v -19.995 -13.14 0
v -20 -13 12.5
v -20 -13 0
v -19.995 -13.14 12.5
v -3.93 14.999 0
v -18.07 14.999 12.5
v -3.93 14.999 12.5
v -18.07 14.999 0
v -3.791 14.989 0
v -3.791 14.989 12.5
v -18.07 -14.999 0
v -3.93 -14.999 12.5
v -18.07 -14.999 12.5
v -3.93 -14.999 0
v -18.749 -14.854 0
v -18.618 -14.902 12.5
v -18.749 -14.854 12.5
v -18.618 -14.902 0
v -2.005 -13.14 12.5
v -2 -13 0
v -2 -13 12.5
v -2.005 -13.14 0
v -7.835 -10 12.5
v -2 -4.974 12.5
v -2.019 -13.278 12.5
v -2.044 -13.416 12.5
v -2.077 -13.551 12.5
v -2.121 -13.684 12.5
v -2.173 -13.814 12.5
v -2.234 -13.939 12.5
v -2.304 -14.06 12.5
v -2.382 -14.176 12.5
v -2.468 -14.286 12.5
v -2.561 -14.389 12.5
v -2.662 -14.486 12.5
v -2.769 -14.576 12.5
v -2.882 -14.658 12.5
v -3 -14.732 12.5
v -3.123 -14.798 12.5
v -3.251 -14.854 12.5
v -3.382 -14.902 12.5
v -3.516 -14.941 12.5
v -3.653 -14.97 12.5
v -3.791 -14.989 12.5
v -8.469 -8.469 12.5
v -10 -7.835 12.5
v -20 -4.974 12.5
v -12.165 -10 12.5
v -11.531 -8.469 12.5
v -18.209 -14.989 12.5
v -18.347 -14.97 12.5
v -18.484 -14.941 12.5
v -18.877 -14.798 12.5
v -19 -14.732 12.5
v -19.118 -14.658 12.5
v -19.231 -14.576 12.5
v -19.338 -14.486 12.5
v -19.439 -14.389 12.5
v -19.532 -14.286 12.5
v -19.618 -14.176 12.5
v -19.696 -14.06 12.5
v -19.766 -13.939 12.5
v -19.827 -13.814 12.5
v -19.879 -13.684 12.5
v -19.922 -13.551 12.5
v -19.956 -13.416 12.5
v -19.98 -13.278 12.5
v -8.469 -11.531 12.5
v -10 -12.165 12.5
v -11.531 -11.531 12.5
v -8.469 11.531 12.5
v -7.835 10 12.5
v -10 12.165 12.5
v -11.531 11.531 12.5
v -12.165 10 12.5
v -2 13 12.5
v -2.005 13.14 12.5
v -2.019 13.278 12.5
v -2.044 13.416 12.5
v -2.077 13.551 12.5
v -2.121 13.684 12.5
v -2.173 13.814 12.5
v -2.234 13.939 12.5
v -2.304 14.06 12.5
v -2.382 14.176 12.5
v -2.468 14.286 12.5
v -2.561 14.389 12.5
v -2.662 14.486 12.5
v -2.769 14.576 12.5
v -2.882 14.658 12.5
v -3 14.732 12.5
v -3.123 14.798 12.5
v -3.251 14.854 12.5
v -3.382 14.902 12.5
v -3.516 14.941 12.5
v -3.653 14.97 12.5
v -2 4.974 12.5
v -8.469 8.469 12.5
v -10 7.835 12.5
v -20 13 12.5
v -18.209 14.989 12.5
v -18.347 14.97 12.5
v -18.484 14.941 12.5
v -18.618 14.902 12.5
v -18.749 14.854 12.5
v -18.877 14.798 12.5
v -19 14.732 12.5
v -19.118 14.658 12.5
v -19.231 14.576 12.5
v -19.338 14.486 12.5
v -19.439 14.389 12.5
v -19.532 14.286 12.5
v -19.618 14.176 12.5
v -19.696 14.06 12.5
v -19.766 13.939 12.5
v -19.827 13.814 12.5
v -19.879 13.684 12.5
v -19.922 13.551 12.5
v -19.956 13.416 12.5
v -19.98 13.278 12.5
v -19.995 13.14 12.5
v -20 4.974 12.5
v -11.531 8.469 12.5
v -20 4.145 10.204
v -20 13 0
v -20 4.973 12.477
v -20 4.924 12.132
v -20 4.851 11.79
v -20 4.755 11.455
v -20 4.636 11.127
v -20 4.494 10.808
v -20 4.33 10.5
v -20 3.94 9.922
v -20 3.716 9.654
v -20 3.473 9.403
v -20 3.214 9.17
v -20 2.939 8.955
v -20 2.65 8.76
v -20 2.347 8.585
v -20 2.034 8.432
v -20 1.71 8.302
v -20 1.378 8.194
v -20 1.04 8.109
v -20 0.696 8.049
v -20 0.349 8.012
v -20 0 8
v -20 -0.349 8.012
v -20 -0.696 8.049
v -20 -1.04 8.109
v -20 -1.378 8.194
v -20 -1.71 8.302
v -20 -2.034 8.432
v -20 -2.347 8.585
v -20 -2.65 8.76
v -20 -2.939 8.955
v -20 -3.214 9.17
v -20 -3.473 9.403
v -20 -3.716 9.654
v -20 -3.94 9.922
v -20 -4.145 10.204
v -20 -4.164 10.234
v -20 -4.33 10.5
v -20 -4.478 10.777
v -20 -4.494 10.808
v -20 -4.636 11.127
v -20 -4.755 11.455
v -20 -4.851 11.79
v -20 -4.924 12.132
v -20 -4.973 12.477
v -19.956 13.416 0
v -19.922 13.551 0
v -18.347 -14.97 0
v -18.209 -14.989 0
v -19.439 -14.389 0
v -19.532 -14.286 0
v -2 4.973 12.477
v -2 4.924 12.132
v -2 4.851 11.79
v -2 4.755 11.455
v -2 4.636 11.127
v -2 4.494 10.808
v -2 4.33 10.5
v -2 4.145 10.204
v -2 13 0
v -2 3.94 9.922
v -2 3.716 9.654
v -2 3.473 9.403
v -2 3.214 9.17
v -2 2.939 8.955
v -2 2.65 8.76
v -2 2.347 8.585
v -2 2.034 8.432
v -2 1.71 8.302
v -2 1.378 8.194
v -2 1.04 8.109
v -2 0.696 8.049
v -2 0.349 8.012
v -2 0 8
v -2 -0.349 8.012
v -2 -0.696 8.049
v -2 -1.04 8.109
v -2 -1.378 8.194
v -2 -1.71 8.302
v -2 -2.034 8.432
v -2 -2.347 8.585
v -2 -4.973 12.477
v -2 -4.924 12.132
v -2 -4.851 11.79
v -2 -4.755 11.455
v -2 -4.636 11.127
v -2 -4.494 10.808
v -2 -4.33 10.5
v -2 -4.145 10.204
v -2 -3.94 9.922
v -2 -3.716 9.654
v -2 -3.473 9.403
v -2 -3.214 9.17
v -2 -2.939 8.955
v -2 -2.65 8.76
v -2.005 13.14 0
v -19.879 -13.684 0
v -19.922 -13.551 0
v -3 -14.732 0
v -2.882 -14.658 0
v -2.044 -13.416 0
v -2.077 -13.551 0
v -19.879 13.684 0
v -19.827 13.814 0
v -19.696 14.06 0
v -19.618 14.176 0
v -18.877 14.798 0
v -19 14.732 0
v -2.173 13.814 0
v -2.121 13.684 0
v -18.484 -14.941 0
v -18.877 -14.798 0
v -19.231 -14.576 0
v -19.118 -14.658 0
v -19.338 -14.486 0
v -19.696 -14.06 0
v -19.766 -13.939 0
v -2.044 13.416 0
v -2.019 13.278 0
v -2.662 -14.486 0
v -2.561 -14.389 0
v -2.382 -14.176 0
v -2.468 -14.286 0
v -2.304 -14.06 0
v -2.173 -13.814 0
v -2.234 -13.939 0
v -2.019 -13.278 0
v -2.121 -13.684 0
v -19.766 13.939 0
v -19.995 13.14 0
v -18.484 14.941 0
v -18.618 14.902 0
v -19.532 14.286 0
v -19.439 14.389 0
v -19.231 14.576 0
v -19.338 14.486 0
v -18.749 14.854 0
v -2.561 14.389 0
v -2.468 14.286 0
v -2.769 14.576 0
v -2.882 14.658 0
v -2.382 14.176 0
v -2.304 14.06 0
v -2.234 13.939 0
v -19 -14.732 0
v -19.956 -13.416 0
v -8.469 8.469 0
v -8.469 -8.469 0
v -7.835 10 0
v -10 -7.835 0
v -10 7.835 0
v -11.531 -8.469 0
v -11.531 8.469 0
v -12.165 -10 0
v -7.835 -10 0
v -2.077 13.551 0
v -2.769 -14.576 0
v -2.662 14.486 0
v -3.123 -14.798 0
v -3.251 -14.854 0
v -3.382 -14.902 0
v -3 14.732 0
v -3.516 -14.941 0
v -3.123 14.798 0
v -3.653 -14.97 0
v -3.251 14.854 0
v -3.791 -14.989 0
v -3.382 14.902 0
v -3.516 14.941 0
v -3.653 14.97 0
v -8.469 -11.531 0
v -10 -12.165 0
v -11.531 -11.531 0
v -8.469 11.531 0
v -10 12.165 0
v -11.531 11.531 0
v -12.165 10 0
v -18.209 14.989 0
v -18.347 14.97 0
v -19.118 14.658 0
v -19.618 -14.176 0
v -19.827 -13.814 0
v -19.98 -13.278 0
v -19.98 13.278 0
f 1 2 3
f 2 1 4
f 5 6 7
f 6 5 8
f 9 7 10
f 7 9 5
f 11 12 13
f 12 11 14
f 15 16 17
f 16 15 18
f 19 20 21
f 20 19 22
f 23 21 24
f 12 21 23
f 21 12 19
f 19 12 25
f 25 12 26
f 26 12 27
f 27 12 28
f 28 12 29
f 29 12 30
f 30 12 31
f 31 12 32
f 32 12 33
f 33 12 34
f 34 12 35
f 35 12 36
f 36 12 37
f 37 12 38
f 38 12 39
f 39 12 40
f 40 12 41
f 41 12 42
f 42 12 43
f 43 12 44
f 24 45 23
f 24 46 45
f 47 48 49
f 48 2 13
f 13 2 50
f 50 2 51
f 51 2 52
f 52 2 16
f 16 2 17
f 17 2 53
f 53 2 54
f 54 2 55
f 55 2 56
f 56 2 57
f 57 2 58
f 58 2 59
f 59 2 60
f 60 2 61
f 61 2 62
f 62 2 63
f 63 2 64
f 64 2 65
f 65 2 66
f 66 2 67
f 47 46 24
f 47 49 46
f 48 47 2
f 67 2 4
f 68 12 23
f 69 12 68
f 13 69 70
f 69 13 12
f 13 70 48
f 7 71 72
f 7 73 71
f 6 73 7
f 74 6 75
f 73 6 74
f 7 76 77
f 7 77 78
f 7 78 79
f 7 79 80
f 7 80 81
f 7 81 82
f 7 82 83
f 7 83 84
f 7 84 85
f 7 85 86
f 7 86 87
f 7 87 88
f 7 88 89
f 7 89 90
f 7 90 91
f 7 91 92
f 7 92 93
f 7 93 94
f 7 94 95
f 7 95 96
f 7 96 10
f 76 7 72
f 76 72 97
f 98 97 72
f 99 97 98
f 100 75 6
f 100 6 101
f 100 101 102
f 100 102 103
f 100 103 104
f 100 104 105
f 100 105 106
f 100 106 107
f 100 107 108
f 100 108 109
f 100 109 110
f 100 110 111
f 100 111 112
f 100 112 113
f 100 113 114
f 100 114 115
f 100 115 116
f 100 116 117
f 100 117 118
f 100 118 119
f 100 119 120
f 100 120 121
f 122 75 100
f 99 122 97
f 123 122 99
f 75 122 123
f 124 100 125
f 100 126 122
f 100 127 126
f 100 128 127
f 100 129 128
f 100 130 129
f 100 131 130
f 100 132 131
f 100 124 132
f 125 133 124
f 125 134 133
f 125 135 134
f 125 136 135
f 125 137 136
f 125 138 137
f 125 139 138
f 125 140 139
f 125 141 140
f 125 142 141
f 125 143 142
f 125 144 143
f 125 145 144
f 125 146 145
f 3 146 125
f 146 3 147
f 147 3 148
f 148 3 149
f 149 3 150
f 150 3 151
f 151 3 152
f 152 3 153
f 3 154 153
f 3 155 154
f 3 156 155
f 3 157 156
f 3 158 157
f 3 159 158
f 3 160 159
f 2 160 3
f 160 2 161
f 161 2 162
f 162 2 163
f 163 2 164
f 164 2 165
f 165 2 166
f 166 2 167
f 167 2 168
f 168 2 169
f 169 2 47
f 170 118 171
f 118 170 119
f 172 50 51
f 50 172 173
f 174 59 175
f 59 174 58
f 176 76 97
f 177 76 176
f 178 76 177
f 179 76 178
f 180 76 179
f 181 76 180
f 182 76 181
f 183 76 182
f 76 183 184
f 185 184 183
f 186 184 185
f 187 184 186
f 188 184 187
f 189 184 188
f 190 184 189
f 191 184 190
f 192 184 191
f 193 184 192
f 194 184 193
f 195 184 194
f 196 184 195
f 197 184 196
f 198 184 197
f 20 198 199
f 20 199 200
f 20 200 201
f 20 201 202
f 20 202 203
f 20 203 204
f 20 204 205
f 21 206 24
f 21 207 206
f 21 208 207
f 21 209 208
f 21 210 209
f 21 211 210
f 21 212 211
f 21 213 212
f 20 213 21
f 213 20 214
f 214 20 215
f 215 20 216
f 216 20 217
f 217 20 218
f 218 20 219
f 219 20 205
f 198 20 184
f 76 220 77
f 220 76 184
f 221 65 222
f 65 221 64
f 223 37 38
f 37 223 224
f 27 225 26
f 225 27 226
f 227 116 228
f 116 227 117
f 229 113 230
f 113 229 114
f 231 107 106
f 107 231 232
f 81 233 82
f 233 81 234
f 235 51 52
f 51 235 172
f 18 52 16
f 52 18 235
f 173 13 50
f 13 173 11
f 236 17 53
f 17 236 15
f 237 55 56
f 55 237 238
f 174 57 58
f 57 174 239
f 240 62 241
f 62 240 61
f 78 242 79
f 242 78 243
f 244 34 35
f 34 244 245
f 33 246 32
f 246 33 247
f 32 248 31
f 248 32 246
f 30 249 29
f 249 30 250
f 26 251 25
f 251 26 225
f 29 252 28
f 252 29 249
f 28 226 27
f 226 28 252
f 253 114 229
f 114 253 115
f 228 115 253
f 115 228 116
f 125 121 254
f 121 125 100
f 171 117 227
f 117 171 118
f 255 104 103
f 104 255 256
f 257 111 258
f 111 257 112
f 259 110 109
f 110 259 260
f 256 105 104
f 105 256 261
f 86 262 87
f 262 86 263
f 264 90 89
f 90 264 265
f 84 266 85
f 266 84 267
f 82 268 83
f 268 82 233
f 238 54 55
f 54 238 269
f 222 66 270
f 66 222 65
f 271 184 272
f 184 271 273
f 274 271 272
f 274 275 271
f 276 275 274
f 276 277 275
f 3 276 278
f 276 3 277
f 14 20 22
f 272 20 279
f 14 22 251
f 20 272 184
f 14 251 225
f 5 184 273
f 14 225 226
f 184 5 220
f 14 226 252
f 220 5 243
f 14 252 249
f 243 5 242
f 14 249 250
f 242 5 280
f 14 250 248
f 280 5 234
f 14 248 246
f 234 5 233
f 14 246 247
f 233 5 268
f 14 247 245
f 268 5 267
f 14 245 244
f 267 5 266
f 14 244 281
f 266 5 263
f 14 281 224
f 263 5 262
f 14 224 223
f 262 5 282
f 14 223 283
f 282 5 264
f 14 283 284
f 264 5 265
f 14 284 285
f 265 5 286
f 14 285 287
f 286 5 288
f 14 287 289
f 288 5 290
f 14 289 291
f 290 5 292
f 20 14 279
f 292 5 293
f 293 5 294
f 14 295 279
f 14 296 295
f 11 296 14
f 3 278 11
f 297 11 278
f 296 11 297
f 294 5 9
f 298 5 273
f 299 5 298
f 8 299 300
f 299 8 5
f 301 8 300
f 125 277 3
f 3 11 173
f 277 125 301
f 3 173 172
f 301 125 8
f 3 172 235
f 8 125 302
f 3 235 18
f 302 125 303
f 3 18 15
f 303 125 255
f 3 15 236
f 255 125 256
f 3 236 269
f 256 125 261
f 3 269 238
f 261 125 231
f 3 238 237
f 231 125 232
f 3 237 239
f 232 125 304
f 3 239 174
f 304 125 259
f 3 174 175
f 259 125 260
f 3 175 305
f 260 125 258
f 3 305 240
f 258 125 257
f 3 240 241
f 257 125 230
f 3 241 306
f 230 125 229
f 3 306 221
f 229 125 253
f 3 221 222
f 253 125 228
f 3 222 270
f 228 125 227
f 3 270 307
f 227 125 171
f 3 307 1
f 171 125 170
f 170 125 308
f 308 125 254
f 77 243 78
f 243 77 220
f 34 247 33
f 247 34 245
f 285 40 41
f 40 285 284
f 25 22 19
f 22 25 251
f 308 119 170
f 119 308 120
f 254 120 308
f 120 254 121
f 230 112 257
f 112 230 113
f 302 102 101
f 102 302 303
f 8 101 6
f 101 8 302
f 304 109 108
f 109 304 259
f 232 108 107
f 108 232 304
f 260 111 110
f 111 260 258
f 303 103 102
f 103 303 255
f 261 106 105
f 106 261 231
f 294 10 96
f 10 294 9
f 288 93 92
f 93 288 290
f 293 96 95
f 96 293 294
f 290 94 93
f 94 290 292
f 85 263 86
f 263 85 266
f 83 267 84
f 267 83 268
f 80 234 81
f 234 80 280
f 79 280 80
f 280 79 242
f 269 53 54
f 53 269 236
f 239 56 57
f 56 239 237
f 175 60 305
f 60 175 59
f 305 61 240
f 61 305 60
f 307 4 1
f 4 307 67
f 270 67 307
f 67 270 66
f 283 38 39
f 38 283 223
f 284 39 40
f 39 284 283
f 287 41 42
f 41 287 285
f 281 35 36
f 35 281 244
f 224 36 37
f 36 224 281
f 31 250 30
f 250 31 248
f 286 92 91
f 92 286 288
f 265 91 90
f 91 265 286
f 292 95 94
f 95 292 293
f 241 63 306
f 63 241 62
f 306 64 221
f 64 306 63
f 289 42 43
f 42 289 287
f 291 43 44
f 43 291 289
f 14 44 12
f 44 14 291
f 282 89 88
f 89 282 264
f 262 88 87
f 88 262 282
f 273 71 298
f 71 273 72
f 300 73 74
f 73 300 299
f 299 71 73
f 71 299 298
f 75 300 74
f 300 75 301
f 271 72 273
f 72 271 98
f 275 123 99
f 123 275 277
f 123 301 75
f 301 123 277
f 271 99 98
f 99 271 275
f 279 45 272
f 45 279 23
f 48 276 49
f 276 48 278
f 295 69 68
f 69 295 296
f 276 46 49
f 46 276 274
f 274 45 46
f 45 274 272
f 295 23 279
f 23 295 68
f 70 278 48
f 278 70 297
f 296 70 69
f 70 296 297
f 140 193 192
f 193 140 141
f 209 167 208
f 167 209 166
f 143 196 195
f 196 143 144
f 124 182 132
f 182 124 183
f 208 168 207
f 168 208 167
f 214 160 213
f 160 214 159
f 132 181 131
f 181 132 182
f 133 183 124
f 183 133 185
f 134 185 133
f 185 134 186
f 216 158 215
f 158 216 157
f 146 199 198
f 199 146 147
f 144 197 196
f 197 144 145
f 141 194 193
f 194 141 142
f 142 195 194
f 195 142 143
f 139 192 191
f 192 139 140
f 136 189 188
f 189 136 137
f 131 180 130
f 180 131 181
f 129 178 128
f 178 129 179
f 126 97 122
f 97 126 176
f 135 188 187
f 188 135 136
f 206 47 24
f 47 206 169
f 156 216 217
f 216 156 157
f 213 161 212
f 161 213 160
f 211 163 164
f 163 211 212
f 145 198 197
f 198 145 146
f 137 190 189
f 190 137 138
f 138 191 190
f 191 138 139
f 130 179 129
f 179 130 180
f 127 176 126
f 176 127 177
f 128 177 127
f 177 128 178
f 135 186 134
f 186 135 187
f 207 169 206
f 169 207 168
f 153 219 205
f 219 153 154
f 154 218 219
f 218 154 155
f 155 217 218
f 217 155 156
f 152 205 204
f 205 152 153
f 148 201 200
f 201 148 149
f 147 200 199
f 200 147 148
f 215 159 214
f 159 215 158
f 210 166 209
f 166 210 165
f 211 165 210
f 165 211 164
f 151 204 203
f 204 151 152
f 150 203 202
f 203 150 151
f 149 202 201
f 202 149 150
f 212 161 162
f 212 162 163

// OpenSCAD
// file: ../polyhole.scad
// The Cylinder is dead! Long live the Cylinder!
// A module for a polyhole by radius, based on Nophead's work.

module polyhole(h, r, cent = false)
{
    n = max(round(4 * r), 3);
    cylinder(h = h, r = r / cos(180 / n), $fn = n, center = cent);
}
// main file
// Clamp used for y rods
// Uses 35mm m4 bolts

use<../polyhole.scad>

Clamp();

module Clamp()
{
    difference()
    {
        hull()
        {
            translate([-18, -13, 0])
                cylinder(h = 8+4.5, r = 2, $fn = 90);
            translate([-4, -13, 0])
                cylinder(h = 8+4.5, r = 2, $fn = 90);
            translate([-18, 13, 0])
                cylinder(h = 8+4.5, r = 2, $fn = 90);
            translate([-4, 13, 0])
                cylinder(h = 8+4.5, r = 2, $fn = 90);
        }
        translate([-10, 10, 0])
            polyhole(8+4.5, 2);
        translate([-10, -10, 0])
            polyhole(8+4.5, 2);
        translate([-2, 0, 8+5])
            rotate([0, -90, 0])
                cylinder(h = 20, r = 5, $fn = 90);
    }
}
